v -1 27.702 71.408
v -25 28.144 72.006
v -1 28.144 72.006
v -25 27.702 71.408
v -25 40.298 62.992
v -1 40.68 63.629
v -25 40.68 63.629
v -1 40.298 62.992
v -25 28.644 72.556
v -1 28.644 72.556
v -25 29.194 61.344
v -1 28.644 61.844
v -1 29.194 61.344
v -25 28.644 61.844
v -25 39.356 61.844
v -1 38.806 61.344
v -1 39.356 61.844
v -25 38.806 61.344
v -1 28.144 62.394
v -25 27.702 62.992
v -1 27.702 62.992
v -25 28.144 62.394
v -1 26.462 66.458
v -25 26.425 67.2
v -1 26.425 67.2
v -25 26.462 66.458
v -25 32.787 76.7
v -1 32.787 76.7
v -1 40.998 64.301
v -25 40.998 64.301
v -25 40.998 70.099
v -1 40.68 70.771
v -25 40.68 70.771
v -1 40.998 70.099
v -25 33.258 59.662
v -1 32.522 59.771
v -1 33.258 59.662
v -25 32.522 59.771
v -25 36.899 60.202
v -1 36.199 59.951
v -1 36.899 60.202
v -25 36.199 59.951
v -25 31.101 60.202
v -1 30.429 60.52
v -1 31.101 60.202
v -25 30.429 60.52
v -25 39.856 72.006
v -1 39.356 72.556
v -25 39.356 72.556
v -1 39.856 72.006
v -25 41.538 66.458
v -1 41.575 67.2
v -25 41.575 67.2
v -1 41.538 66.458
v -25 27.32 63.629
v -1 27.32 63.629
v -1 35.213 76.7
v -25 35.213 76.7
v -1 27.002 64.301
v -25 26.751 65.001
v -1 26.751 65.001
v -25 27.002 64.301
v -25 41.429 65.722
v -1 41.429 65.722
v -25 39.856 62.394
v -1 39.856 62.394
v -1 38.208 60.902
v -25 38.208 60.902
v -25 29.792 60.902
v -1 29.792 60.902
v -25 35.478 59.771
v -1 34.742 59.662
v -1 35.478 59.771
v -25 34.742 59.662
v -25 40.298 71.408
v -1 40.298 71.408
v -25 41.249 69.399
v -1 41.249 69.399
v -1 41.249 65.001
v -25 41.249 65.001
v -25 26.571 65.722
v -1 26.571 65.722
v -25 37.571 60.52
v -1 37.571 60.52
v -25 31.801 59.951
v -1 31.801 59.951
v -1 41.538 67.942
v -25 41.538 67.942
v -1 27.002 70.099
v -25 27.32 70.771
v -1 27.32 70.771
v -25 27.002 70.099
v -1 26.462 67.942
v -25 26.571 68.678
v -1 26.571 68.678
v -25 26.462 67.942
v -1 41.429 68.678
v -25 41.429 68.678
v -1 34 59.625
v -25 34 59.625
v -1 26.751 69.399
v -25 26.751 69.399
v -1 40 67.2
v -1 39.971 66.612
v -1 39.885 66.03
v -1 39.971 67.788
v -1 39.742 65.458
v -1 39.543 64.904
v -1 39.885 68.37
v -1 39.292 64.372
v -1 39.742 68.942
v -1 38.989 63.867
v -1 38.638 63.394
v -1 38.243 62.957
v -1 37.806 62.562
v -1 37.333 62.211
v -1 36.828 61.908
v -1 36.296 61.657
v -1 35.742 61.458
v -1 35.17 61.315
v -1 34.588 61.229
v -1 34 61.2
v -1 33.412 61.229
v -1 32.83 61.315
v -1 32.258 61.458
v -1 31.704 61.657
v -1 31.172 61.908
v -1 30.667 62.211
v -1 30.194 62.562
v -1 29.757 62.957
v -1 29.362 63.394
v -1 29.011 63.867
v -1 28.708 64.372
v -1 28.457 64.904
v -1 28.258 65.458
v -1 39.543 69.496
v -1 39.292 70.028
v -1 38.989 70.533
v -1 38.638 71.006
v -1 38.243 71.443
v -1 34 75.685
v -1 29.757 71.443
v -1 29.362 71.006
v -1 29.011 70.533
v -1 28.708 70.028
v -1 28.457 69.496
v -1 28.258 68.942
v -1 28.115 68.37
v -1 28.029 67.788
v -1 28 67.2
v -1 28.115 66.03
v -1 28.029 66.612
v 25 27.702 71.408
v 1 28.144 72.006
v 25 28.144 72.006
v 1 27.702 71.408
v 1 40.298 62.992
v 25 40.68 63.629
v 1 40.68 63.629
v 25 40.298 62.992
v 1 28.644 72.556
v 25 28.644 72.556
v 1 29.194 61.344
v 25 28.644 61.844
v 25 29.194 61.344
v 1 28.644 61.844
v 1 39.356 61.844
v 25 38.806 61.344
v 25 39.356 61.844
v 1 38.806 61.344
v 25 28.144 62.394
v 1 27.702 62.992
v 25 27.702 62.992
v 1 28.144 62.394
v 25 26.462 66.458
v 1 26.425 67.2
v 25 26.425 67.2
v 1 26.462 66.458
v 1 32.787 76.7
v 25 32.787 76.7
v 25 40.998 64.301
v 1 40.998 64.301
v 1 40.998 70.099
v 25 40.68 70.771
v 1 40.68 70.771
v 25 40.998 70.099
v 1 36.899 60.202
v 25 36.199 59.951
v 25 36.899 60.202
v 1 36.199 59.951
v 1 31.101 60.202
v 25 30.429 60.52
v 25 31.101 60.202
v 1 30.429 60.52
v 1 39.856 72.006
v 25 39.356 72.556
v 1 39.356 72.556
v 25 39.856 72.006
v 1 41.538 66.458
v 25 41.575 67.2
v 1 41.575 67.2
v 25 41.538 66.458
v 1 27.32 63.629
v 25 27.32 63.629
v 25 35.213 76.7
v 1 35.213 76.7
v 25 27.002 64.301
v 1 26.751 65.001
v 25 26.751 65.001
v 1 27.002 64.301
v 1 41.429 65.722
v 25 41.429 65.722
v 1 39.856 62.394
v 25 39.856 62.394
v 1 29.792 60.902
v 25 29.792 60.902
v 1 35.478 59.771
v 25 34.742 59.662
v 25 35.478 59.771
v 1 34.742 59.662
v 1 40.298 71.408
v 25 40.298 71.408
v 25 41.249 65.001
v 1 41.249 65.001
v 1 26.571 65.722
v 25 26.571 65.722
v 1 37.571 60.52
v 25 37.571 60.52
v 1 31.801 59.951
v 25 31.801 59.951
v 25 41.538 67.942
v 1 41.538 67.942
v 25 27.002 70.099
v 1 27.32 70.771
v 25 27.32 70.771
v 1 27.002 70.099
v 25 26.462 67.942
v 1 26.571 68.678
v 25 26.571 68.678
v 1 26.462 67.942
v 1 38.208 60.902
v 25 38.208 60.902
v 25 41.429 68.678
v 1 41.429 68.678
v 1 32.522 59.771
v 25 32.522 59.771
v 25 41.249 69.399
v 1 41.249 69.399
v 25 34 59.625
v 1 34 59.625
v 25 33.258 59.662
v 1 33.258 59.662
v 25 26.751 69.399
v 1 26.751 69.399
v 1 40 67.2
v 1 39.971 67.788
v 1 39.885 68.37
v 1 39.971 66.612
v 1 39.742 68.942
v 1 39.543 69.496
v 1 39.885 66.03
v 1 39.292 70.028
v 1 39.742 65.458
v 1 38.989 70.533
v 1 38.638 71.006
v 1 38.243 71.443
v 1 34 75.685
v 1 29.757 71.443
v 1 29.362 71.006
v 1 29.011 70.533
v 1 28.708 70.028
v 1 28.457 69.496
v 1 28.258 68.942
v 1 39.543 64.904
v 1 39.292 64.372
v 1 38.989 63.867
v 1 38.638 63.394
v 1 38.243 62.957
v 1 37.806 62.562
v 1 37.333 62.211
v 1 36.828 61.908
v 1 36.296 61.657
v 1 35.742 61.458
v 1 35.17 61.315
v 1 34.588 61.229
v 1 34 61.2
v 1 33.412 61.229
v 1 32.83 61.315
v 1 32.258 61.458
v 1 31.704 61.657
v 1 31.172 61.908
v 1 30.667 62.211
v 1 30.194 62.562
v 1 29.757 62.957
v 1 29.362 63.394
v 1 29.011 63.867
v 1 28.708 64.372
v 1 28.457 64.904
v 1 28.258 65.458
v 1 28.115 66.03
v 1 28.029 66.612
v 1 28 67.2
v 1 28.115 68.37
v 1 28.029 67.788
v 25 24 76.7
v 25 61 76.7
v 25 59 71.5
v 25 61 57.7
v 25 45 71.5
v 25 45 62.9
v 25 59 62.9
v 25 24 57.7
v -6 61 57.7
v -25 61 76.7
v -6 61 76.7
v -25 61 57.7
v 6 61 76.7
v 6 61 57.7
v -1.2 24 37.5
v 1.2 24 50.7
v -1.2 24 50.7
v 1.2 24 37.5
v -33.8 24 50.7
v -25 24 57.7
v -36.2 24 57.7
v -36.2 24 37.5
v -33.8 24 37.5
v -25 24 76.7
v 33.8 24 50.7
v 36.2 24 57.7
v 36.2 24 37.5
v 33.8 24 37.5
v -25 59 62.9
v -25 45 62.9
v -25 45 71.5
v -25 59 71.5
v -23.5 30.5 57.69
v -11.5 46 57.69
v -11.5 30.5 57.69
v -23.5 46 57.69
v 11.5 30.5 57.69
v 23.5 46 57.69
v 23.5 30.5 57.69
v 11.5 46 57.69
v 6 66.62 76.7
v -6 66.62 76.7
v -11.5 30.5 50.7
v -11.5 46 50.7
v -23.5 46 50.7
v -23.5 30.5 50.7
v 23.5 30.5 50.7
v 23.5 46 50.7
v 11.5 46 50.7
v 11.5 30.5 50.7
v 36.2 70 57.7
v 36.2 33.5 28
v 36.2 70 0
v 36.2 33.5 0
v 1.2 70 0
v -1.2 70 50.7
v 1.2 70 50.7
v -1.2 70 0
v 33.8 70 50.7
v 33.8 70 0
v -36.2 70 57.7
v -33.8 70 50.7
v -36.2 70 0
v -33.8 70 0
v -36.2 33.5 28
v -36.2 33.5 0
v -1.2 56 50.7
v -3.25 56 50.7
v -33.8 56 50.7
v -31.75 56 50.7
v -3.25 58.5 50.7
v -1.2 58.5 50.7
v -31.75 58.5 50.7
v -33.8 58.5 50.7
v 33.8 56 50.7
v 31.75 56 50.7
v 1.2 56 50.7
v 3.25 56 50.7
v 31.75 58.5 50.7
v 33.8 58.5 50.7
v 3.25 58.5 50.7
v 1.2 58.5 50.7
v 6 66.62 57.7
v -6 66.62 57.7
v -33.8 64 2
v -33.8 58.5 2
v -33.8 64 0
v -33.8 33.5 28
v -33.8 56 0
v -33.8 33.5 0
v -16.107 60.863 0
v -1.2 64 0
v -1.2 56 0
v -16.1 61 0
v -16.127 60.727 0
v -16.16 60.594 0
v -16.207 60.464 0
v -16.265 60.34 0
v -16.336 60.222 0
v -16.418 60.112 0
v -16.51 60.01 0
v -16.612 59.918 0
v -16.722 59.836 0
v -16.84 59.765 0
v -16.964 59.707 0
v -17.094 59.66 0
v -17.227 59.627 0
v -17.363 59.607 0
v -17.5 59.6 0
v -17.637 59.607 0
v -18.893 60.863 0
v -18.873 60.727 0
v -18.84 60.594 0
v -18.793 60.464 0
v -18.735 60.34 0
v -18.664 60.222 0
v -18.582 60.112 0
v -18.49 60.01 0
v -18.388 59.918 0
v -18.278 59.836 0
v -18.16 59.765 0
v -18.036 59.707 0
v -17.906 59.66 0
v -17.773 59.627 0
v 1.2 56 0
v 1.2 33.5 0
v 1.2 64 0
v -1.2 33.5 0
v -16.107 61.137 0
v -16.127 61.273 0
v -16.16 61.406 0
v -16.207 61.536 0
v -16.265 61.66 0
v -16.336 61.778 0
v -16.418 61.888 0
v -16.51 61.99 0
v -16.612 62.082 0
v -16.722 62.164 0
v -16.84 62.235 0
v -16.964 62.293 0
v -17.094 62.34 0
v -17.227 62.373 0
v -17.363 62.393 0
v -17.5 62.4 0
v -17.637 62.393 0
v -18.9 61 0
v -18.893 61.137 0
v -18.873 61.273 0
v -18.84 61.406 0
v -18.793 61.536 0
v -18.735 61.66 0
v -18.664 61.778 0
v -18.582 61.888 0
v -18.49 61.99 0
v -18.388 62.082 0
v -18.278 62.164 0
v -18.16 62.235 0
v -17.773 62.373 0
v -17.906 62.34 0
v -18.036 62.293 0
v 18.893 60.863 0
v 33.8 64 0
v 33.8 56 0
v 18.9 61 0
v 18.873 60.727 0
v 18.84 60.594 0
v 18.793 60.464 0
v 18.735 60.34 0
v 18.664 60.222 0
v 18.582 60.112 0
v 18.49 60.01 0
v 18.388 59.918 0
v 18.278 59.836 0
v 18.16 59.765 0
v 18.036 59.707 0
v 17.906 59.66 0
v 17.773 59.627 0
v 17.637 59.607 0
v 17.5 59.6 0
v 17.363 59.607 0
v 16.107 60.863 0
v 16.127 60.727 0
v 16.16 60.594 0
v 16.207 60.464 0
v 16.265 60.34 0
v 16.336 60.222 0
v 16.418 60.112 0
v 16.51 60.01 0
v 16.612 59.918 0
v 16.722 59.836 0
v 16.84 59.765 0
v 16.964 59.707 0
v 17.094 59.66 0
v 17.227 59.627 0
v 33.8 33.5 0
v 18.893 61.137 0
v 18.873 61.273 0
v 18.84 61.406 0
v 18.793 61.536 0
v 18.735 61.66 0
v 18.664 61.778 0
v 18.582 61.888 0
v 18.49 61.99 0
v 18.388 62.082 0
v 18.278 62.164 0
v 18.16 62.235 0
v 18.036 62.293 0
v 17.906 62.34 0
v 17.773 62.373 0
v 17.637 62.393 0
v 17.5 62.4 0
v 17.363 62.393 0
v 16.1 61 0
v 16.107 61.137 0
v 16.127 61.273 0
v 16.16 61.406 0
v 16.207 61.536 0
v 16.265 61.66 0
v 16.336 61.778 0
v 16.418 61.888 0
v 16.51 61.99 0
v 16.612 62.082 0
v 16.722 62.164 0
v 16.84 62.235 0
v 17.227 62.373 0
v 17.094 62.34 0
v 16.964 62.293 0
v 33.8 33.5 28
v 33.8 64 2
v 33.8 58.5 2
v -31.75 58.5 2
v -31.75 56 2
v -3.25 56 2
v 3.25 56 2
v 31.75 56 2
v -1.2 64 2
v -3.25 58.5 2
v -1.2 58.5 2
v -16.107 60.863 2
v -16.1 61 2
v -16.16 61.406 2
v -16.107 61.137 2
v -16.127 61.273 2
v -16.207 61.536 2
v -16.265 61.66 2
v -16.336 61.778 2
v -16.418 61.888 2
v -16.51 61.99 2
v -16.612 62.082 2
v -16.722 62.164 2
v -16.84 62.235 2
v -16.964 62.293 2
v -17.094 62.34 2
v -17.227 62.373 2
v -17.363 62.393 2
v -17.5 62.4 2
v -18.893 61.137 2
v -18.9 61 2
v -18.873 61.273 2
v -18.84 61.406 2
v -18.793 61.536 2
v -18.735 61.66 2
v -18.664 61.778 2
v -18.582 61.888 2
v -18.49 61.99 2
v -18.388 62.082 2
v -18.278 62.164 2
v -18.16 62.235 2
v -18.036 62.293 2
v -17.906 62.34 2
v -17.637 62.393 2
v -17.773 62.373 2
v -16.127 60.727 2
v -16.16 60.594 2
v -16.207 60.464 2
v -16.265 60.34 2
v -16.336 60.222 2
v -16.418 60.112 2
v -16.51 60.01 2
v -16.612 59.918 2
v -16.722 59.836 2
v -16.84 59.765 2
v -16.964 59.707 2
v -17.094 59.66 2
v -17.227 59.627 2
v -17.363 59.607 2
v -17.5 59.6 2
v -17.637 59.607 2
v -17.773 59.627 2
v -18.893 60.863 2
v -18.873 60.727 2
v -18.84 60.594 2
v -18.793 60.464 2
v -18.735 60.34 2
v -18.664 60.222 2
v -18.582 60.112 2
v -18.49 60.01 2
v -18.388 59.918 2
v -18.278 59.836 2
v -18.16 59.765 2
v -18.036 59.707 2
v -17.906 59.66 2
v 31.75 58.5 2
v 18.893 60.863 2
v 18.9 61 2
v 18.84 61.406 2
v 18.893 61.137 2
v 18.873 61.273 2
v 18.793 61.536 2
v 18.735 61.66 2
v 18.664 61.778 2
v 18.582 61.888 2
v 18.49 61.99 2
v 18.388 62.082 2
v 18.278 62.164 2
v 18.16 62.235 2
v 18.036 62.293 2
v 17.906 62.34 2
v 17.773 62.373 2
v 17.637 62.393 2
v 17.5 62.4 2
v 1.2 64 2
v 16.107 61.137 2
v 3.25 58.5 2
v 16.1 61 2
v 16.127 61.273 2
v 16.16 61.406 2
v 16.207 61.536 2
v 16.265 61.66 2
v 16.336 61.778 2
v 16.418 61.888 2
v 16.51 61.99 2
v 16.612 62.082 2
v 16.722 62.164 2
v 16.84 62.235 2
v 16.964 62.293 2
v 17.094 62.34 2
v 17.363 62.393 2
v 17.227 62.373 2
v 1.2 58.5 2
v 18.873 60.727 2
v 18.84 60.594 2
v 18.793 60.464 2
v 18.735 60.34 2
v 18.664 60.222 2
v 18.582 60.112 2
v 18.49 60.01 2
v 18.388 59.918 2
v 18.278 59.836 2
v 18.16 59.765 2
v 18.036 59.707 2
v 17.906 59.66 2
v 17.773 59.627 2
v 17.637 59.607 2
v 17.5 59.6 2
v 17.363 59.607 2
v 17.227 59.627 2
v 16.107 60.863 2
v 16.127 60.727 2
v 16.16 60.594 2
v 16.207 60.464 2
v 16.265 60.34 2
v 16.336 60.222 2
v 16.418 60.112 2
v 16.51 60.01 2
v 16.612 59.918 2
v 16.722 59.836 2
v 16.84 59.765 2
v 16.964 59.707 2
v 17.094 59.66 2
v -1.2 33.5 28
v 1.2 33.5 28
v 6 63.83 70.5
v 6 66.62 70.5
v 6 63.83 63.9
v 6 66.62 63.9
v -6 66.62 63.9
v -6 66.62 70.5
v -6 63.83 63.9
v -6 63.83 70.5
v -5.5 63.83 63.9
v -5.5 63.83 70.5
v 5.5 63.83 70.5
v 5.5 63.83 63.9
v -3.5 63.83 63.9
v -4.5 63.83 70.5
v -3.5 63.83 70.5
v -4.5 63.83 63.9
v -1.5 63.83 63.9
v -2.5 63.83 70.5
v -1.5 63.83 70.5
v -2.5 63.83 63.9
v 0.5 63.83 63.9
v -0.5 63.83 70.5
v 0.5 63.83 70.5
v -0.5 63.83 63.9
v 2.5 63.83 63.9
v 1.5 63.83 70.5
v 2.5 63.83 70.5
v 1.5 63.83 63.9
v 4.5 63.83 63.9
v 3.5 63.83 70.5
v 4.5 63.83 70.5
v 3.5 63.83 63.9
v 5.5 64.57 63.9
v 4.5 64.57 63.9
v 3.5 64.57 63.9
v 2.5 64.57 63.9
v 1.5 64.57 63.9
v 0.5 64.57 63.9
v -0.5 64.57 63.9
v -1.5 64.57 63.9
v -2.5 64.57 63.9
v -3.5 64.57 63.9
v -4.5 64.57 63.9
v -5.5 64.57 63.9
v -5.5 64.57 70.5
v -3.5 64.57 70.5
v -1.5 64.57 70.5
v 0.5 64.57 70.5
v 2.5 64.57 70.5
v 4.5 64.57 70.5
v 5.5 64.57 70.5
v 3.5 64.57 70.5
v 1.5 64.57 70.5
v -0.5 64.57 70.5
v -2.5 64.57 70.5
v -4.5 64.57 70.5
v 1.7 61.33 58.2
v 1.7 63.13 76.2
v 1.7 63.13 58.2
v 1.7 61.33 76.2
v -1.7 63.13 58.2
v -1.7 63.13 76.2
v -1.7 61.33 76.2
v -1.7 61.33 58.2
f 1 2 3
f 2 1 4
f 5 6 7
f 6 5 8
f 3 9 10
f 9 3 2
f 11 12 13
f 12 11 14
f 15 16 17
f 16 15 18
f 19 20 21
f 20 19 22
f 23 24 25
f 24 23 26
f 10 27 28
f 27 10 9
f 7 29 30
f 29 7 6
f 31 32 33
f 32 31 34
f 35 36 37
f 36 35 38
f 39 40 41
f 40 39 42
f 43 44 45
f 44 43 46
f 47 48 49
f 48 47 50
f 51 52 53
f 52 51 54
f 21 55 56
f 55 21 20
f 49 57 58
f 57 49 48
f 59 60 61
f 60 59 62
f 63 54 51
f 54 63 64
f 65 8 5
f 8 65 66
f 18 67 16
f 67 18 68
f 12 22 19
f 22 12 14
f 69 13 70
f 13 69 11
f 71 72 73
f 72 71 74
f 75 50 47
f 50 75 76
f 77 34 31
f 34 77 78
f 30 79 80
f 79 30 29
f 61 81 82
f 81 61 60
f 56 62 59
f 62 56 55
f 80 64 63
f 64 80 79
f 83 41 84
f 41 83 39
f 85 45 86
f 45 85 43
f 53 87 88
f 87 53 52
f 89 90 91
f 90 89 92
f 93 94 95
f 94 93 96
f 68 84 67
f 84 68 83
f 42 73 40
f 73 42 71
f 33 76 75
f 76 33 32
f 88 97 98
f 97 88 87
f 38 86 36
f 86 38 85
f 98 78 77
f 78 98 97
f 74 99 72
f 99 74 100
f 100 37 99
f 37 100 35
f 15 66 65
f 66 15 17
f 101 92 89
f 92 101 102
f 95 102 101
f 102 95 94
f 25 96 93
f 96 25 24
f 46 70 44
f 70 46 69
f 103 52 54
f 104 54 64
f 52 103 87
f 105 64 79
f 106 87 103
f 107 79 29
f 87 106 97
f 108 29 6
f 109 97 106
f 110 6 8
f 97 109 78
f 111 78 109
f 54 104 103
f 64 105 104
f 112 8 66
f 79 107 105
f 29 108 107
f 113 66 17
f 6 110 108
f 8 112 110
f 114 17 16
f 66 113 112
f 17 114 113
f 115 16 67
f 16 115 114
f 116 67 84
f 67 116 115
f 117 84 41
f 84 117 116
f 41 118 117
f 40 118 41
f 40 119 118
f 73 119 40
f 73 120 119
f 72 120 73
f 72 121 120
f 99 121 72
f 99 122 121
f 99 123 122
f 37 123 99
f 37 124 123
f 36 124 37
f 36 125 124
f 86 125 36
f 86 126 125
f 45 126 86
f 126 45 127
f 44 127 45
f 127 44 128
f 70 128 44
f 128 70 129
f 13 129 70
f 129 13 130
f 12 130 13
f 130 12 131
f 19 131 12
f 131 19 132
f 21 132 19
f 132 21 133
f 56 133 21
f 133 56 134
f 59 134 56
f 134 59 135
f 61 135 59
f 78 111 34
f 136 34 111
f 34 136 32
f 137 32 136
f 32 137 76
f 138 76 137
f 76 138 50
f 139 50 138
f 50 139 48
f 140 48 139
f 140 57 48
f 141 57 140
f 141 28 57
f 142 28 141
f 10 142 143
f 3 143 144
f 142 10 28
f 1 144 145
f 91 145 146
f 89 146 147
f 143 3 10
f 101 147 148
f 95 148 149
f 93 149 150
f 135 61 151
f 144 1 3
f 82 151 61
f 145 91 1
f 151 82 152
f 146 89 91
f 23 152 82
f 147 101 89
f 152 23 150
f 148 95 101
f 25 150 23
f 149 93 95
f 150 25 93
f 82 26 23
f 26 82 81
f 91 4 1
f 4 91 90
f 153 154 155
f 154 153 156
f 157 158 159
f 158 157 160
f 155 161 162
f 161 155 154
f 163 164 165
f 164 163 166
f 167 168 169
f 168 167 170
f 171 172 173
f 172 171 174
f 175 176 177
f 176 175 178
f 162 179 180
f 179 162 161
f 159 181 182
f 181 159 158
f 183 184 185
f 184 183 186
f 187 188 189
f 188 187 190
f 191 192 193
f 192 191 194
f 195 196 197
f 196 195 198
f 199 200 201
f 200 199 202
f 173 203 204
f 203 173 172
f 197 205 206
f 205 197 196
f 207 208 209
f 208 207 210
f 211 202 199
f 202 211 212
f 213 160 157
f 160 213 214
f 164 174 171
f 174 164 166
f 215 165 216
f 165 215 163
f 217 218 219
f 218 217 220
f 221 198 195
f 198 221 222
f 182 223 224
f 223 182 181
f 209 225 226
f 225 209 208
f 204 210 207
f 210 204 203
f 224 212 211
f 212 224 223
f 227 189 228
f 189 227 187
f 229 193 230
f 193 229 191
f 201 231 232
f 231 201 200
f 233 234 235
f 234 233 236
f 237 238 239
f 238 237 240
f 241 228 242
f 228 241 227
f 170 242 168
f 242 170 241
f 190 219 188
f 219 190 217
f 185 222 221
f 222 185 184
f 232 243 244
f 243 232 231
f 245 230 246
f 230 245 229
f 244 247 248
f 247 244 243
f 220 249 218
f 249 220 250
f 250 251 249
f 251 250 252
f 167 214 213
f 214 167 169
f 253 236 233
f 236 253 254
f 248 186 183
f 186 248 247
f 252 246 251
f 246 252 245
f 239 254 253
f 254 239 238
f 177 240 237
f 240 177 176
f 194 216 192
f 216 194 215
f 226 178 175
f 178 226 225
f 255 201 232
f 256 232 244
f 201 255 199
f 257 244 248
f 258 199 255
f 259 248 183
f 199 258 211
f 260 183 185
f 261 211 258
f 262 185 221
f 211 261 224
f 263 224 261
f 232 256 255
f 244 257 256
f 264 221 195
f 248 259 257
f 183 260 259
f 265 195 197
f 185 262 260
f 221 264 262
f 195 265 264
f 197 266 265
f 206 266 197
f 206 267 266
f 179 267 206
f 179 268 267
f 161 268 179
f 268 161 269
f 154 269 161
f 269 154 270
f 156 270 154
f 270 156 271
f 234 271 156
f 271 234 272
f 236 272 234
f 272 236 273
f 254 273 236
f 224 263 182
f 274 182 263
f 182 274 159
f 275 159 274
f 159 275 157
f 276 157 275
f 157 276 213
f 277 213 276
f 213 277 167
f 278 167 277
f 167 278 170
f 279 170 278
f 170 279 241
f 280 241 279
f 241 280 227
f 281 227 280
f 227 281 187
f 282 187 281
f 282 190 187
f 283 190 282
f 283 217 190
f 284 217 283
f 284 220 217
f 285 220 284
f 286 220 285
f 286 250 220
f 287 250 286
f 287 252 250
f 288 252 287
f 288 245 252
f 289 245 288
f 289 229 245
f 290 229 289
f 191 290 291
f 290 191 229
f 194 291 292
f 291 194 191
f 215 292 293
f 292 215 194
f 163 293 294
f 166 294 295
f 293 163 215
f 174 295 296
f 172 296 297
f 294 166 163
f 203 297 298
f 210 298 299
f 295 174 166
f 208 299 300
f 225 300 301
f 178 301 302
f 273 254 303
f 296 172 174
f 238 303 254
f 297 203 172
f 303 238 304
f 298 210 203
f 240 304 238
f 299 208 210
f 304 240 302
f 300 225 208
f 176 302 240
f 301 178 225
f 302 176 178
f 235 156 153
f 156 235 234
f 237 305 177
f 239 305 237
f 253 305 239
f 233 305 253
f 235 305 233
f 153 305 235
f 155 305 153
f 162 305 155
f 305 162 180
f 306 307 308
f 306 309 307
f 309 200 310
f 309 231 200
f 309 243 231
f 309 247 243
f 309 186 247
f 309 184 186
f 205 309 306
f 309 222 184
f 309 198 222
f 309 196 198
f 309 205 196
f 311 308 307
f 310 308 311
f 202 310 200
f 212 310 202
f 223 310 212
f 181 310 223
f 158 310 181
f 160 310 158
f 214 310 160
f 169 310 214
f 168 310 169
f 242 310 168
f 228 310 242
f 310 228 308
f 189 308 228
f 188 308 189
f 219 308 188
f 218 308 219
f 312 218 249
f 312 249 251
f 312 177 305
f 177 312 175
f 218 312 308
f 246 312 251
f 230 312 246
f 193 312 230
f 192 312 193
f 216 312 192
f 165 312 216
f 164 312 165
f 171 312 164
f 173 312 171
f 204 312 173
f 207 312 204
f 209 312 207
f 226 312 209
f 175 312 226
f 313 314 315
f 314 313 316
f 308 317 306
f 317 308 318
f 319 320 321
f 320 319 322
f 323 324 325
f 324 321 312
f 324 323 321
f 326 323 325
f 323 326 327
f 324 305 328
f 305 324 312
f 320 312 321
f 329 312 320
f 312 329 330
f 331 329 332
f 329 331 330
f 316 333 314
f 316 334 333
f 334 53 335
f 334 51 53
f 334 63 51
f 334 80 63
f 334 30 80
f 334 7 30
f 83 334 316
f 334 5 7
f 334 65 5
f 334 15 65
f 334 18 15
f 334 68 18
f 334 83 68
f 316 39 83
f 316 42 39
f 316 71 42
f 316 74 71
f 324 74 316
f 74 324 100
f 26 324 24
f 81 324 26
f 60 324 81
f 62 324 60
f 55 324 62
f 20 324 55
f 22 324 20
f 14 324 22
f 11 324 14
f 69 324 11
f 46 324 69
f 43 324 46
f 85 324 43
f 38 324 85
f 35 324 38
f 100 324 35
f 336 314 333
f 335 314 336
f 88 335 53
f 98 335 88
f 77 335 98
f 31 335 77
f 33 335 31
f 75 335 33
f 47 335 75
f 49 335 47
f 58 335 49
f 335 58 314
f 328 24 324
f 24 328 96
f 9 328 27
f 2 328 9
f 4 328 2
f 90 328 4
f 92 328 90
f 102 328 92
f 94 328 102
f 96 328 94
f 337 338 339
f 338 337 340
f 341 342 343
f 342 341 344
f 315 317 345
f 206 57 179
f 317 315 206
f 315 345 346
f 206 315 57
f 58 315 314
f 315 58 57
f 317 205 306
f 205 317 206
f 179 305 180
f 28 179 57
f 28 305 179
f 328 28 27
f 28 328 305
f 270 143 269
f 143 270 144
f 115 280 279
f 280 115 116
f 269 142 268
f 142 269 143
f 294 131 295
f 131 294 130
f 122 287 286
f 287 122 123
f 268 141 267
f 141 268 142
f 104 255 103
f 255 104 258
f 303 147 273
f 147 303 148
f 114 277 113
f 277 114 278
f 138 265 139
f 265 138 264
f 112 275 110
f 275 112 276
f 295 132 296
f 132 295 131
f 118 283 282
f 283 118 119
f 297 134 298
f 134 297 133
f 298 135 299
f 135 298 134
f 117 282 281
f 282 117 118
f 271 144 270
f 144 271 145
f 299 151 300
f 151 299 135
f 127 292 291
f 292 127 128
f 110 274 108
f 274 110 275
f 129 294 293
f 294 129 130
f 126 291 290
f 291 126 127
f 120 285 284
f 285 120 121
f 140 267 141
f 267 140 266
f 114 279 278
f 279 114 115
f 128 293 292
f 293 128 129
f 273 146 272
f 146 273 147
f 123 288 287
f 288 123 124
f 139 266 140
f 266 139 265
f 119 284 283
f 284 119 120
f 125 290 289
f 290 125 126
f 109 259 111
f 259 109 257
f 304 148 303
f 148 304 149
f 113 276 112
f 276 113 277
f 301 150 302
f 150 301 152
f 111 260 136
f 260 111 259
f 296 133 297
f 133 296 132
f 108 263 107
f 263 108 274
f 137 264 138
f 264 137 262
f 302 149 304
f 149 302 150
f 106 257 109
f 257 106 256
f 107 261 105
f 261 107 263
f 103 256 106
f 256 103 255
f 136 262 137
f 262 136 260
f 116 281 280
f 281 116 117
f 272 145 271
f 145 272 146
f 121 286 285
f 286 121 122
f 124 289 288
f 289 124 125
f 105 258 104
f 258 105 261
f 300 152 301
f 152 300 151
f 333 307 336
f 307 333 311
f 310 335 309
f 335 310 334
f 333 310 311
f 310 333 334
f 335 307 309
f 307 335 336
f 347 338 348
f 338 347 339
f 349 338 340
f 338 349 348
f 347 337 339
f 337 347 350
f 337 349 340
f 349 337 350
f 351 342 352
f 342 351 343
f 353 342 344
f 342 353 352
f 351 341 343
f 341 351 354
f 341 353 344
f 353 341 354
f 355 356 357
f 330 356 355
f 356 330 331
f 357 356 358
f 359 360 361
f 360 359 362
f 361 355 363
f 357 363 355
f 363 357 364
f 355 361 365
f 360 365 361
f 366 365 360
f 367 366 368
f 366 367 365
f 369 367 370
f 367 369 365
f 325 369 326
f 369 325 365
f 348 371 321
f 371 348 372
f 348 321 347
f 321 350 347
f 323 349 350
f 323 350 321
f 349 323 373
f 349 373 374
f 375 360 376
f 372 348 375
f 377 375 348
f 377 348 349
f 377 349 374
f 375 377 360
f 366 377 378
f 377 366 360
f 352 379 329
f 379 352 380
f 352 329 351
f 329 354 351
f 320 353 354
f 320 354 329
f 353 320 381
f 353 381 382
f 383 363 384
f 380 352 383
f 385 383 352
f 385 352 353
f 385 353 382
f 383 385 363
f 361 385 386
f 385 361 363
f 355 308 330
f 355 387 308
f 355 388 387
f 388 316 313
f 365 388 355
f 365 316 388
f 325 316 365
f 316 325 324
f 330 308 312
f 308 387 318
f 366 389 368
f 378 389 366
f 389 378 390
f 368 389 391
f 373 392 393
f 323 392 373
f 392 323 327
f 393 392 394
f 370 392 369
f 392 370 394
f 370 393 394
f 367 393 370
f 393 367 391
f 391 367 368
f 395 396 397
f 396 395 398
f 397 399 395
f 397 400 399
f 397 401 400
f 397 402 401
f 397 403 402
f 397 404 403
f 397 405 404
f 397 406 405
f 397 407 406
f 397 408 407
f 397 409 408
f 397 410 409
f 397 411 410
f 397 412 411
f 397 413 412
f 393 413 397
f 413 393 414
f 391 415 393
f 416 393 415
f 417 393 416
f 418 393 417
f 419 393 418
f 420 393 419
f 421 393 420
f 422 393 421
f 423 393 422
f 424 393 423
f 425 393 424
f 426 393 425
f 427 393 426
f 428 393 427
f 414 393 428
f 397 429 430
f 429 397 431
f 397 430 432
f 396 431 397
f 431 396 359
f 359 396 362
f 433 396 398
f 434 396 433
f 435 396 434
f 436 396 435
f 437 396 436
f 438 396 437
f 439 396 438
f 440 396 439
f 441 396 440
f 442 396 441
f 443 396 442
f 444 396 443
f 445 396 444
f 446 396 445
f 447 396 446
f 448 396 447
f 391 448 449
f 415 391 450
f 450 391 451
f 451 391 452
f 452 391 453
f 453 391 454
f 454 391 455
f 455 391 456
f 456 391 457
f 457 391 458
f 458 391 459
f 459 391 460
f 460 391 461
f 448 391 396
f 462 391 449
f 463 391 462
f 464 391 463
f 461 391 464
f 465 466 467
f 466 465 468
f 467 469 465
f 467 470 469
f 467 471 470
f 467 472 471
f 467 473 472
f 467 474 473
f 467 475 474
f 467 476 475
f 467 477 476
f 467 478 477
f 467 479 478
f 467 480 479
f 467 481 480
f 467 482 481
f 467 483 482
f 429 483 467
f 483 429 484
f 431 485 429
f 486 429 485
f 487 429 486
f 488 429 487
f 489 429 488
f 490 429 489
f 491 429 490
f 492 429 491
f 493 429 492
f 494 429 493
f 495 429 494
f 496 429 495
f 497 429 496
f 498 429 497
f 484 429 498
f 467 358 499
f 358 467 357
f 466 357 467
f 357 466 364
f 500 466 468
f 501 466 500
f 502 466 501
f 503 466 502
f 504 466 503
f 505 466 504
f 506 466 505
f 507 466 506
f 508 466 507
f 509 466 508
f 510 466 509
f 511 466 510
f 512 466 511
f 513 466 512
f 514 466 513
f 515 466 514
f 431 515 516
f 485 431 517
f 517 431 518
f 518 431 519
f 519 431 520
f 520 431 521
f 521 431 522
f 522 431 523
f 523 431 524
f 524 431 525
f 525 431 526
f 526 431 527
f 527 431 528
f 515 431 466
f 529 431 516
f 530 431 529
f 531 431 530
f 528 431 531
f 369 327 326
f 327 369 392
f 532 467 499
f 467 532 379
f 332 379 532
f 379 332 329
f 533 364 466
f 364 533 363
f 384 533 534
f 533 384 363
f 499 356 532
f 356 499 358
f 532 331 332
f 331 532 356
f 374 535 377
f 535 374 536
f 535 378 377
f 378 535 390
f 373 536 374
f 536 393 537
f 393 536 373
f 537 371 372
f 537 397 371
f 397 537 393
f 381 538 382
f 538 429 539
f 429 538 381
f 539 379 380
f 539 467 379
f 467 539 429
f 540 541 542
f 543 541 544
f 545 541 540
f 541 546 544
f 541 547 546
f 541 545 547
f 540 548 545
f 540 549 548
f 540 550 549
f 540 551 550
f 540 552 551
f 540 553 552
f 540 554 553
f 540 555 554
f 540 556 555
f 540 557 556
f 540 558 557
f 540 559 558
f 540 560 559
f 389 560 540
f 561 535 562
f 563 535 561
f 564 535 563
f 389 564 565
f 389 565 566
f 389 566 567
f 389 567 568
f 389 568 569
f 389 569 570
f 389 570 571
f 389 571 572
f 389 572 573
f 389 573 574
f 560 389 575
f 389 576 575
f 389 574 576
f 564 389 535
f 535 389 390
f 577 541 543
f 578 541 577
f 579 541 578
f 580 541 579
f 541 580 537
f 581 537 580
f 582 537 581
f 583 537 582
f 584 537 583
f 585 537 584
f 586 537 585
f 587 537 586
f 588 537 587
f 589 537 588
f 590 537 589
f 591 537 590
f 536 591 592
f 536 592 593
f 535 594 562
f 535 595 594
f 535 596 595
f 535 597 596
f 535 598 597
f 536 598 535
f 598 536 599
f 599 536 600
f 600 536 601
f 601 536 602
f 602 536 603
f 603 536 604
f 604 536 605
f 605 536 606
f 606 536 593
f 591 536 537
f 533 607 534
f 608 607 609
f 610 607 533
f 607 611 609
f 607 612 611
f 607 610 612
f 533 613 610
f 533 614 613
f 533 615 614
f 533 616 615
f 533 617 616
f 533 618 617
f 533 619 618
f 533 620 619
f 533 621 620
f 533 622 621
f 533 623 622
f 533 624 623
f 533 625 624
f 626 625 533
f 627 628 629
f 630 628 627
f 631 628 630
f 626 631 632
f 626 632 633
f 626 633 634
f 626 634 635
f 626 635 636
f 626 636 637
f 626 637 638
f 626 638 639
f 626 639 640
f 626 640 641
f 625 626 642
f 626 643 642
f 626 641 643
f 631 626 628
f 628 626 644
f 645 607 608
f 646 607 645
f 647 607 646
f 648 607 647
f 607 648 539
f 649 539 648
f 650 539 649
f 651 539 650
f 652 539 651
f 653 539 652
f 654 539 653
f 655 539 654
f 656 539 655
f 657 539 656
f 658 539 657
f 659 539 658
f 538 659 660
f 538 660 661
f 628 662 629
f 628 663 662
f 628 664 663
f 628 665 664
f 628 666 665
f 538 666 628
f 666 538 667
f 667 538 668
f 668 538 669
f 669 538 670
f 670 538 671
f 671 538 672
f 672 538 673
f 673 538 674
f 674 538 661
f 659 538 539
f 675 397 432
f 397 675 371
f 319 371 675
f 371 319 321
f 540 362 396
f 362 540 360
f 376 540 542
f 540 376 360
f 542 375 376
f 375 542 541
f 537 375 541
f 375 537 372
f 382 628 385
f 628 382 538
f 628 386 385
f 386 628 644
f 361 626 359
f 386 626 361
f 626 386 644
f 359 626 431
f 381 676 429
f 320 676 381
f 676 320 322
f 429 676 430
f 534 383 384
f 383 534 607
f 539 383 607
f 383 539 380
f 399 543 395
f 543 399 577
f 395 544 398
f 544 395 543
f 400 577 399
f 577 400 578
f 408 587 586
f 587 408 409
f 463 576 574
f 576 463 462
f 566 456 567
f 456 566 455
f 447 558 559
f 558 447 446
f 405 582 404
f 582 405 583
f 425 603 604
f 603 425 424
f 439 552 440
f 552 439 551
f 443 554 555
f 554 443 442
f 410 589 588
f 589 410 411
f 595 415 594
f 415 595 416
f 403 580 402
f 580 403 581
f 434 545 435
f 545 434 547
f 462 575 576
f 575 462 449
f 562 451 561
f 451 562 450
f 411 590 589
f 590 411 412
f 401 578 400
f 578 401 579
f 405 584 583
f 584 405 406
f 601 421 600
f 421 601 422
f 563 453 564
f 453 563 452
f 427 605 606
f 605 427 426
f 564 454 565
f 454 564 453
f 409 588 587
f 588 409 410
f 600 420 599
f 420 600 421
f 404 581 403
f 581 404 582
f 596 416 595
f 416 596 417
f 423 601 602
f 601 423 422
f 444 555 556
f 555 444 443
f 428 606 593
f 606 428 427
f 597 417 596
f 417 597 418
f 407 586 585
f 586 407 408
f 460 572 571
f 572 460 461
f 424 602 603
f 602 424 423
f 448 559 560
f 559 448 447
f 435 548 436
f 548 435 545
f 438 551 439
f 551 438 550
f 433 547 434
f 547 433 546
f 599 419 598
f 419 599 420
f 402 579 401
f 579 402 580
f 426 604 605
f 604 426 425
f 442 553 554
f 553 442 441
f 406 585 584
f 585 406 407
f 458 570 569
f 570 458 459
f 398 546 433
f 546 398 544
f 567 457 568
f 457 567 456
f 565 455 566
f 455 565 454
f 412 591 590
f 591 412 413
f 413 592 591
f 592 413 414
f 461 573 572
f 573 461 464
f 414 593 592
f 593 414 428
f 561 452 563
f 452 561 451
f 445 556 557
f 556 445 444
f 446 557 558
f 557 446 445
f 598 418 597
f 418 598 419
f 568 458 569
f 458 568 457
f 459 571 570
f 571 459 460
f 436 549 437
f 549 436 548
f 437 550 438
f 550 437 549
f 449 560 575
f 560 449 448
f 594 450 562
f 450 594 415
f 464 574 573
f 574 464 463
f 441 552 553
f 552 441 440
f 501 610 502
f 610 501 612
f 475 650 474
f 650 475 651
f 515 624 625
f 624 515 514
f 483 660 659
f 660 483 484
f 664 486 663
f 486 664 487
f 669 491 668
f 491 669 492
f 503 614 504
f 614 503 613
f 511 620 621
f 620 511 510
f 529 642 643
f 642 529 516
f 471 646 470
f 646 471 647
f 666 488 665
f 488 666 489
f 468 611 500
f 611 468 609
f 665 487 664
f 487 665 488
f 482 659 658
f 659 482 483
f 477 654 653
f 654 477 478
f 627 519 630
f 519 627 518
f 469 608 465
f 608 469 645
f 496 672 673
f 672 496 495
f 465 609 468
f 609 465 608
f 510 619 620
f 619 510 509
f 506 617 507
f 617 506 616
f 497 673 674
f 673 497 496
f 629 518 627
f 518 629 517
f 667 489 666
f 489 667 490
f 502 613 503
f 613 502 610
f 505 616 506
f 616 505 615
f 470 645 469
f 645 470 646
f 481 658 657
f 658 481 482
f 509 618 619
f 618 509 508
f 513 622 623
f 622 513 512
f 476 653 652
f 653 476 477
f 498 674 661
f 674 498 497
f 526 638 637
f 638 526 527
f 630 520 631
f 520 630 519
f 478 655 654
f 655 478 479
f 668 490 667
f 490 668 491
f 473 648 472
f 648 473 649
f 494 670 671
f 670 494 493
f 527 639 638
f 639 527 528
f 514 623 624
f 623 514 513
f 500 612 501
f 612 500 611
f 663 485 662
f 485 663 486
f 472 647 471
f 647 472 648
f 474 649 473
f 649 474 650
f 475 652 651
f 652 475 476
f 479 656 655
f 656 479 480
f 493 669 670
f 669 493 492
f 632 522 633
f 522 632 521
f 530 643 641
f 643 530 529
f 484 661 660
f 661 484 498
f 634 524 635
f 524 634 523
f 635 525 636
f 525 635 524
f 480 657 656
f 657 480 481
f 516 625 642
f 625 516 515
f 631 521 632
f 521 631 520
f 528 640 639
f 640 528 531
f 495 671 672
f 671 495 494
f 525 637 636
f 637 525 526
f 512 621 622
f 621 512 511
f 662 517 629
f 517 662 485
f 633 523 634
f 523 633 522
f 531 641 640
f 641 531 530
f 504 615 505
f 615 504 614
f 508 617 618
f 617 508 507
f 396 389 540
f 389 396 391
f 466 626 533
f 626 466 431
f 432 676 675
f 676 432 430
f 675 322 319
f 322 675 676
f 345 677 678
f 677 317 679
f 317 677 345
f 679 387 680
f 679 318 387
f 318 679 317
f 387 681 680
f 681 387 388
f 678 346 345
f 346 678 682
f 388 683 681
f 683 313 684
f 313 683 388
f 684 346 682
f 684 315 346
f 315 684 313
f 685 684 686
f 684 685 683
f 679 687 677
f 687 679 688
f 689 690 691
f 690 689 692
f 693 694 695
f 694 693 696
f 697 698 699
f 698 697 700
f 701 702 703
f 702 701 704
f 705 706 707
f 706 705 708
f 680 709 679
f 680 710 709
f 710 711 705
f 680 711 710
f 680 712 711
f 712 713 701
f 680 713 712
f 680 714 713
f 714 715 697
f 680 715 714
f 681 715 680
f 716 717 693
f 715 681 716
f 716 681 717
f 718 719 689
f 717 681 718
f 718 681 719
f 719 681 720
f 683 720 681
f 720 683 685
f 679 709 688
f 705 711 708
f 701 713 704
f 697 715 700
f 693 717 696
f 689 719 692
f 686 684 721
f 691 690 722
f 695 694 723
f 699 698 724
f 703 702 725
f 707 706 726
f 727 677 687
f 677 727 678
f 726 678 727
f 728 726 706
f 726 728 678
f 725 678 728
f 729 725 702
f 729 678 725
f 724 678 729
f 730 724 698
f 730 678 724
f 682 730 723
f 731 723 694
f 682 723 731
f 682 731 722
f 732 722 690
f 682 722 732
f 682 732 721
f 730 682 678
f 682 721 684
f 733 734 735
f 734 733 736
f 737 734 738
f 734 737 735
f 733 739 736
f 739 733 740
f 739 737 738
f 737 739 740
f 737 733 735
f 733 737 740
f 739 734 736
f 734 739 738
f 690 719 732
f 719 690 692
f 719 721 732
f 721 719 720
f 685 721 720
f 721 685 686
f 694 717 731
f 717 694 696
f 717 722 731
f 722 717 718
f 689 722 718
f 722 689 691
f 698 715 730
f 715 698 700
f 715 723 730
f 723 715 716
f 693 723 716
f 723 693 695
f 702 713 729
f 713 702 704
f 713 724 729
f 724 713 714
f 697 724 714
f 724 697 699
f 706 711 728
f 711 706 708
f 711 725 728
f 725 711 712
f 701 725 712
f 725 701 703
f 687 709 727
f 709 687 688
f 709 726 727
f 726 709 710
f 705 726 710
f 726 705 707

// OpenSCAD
// Print carriage (v2), modelled on the Openprinter's: the two cartridges hang
// by their side ears in a holder in front of a vertical contact plate; the
// body behind the plate rides two 8 mm rods, belt clamped on top.
//
//   body    2x LM8UU pressed into the lower bore (rod constrains Y and Z);
//           a vertical slot rides the upper rod (constrains Y only)
//   plate   windows behind each cartridge's 16-pad contact field for the
//           contact flex / pogo board (not designed yet)
//   holder  pockets sized from a 3D scan of an HP 123 (same shell as the
//           63/302/803): ears on 2 mm ledges, an M3 thumb screw in the front
//           bar pushes each cartridge back onto its contacts
//   clamp   both ends of the GT2 belt drop into the top channel, teeth down,
//           and a 2.5 mm zip tie through the tunnel holds them
//
// Modelled in frame coordinates (Y, Z absolute; X relative to the carriage
// centre). Print standing on the front bar (as output), no supports: every
// horizontal hole is a teardrop pointing up in the print.

include <common.scad>

pocket_w  = cart_ear_w + cart_fit;       // 32.6 across the ears
body_w    = cart_w + cart_fit;           // 28.5 below the ears
ledge_z   = nozzle_z + cart_ear_z;       // ears rest here (58.5)
front_y   = cart_y0 + cart_d + cart_fit; // cartridge front (99.5)
bar_t     = 2;
wall_t    = 2.4;
top_z     = 70;
low_z     = 24;                          // under the snout, 3 mm over the paper
// holder walls must clear the feed shaft and rollers (top at feed_z + roller_r)
clear_y   = feed_y - roller_r - 0.5;
clear_z   = feed_z + roller_r + 0.5;

body_y    = [rod_y - 9.5, cart_y0 - plate_t];
body_z    = [rod_z[0] - lm_d / 2 - 2.5, rod_z[1] + 9];

belt_run  = belt_zf - pulley_pr;         // lower belt run, clamped here
clamp_x   = 12;
slot_h    = belt_t + 0.2;

// teardrop along X pointing -Y (up in the print)
module td(d, l) rotate([90, 0, 0]) teardrop_x(d, l);

// wall outline in (Y, Z): low under the snout, stepping up at 45 degrees to
// clear the feed shaft and rollers under the cartridges' front half
module wall_profile() {
    polygon([[cart_y0 - 0.01, low_z], [clear_y - (clear_z - low_z), low_z], [clear_y, clear_z],
             [front_y + bar_t, clear_z], [front_y + bar_t, top_z], [cart_y0 - 0.01, top_z]]);
}

module wall_at(x, w) translate([x - w / 2, 0, 0]) rotate([90, 0, 90]) linear_extrude(w) wall_profile();

module holder() {
    for (s = [-1, 1]) wall_at(s * (carr_hw - wall_t / 2), wall_t);
    wall_at(0, wall_t);
    // ledges under the ears, along each pocket side
    for (s = [-1, 1], side = [-1, 1]) {
        xi = s * pocket_x + side * (pocket_w / 2 - (pocket_w - body_w) / 4);
        translate([xi - (pocket_w - body_w) / 4, cart_y0, ledge_z - 2.5])
            cube([(pocket_w - body_w) / 2, front_y - cart_y0, 2.5]);
    }
    // front bar with a thumb screw per pocket
    difference() {
        translate([-carr_hw, front_y, ledge_z - 2.5]) cube([2 * carr_hw, bar_t, 8]);
        for (s = [-1, 1]) translate([s * pocket_x, front_y - 1, ledge_z + 2.5])
            rotate([-90, 0, 0]) cylinder(d = m3_tap, h = bar_t + 2);
    }
}

module plate() {
    difference() {
        translate([-carr_hw, cart_y0 - plate_t, low_z]) cube([2 * carr_hw, plate_t, top_z - low_z]);
        // contact windows, one per cartridge
        for (s = [-1, 1])
            translate([s * pocket_x - 6, cart_y0 - plate_t - 1, nozzle_z + cart_pad_z[0] - 1.5])
                cube([12, plate_t + 2, cart_pad_z[1] - cart_pad_z[0] + 3]);
    }
}

module body() {
    difference() {
        translate([-carr_bw, body_y[0], body_z[0]]) cube([2 * carr_bw, body_y[1] - body_y[0] + 0.01, body_z[1] - body_z[0]]);
        // lower rod: LM8UU bores from both ends, narrower stop in the middle
        for (s = [-1, 1])
            translate([s * (carr_bw - lm_l / 2 + 0.5), rod_y, rod_z[0]]) td(lm_d + lm_fit, lm_l + 1);
        translate([0, rod_y, rod_z[0]]) td(12, 2 * carr_bw + 2);
        // upper rod: slot, tight in Y, free in Z
        translate([-carr_bw - 1, rod_y - (rod_d + 0.6) / 2, rod_z[1] - 7])
            cube([2 * carr_bw + 2, rod_d + 0.6, 14]);
    }
}

// Belt clamp on the body top: a channel open to the top with teeth on its
// floor, and a zip-tie tunnel underneath.
module clamp() {
    difference() {
        translate([-clamp_x / 2, body_y[0], body_z[1] - 0.01])
            cube([clamp_x, body_y[1] - body_y[0], belt_run + 2 - body_z[1]]);
        translate([-clamp_x / 2 - 1, belt_y - (belt_w + 0.6) / 2, belt_run - slot_h / 2])
            cube([clamp_x + 2, belt_w + 0.6, 20]);
        translate([0, belt_y, belt_run - slot_h / 2 - 1.6])
            cube([3.4, belt_w + 12, 1.8], center = true);
    }
    for (i = [0 : clamp_x / belt_pitch - 1])
        translate([-clamp_x / 2 + i * belt_pitch + 0.5, belt_y - (belt_w + 0.6) / 2, belt_run - slot_h / 2 - 0.01])
            cube([1, belt_w + 0.6, 0.75]);
}

module carriage_body_all() {
    body();
    plate();
    holder();
    clamp();
}

// print orientation: front bar on the bed
translate([0, 0, front_y + bar_t]) rotate([-90, 0, 0]) carriage_body_all();
